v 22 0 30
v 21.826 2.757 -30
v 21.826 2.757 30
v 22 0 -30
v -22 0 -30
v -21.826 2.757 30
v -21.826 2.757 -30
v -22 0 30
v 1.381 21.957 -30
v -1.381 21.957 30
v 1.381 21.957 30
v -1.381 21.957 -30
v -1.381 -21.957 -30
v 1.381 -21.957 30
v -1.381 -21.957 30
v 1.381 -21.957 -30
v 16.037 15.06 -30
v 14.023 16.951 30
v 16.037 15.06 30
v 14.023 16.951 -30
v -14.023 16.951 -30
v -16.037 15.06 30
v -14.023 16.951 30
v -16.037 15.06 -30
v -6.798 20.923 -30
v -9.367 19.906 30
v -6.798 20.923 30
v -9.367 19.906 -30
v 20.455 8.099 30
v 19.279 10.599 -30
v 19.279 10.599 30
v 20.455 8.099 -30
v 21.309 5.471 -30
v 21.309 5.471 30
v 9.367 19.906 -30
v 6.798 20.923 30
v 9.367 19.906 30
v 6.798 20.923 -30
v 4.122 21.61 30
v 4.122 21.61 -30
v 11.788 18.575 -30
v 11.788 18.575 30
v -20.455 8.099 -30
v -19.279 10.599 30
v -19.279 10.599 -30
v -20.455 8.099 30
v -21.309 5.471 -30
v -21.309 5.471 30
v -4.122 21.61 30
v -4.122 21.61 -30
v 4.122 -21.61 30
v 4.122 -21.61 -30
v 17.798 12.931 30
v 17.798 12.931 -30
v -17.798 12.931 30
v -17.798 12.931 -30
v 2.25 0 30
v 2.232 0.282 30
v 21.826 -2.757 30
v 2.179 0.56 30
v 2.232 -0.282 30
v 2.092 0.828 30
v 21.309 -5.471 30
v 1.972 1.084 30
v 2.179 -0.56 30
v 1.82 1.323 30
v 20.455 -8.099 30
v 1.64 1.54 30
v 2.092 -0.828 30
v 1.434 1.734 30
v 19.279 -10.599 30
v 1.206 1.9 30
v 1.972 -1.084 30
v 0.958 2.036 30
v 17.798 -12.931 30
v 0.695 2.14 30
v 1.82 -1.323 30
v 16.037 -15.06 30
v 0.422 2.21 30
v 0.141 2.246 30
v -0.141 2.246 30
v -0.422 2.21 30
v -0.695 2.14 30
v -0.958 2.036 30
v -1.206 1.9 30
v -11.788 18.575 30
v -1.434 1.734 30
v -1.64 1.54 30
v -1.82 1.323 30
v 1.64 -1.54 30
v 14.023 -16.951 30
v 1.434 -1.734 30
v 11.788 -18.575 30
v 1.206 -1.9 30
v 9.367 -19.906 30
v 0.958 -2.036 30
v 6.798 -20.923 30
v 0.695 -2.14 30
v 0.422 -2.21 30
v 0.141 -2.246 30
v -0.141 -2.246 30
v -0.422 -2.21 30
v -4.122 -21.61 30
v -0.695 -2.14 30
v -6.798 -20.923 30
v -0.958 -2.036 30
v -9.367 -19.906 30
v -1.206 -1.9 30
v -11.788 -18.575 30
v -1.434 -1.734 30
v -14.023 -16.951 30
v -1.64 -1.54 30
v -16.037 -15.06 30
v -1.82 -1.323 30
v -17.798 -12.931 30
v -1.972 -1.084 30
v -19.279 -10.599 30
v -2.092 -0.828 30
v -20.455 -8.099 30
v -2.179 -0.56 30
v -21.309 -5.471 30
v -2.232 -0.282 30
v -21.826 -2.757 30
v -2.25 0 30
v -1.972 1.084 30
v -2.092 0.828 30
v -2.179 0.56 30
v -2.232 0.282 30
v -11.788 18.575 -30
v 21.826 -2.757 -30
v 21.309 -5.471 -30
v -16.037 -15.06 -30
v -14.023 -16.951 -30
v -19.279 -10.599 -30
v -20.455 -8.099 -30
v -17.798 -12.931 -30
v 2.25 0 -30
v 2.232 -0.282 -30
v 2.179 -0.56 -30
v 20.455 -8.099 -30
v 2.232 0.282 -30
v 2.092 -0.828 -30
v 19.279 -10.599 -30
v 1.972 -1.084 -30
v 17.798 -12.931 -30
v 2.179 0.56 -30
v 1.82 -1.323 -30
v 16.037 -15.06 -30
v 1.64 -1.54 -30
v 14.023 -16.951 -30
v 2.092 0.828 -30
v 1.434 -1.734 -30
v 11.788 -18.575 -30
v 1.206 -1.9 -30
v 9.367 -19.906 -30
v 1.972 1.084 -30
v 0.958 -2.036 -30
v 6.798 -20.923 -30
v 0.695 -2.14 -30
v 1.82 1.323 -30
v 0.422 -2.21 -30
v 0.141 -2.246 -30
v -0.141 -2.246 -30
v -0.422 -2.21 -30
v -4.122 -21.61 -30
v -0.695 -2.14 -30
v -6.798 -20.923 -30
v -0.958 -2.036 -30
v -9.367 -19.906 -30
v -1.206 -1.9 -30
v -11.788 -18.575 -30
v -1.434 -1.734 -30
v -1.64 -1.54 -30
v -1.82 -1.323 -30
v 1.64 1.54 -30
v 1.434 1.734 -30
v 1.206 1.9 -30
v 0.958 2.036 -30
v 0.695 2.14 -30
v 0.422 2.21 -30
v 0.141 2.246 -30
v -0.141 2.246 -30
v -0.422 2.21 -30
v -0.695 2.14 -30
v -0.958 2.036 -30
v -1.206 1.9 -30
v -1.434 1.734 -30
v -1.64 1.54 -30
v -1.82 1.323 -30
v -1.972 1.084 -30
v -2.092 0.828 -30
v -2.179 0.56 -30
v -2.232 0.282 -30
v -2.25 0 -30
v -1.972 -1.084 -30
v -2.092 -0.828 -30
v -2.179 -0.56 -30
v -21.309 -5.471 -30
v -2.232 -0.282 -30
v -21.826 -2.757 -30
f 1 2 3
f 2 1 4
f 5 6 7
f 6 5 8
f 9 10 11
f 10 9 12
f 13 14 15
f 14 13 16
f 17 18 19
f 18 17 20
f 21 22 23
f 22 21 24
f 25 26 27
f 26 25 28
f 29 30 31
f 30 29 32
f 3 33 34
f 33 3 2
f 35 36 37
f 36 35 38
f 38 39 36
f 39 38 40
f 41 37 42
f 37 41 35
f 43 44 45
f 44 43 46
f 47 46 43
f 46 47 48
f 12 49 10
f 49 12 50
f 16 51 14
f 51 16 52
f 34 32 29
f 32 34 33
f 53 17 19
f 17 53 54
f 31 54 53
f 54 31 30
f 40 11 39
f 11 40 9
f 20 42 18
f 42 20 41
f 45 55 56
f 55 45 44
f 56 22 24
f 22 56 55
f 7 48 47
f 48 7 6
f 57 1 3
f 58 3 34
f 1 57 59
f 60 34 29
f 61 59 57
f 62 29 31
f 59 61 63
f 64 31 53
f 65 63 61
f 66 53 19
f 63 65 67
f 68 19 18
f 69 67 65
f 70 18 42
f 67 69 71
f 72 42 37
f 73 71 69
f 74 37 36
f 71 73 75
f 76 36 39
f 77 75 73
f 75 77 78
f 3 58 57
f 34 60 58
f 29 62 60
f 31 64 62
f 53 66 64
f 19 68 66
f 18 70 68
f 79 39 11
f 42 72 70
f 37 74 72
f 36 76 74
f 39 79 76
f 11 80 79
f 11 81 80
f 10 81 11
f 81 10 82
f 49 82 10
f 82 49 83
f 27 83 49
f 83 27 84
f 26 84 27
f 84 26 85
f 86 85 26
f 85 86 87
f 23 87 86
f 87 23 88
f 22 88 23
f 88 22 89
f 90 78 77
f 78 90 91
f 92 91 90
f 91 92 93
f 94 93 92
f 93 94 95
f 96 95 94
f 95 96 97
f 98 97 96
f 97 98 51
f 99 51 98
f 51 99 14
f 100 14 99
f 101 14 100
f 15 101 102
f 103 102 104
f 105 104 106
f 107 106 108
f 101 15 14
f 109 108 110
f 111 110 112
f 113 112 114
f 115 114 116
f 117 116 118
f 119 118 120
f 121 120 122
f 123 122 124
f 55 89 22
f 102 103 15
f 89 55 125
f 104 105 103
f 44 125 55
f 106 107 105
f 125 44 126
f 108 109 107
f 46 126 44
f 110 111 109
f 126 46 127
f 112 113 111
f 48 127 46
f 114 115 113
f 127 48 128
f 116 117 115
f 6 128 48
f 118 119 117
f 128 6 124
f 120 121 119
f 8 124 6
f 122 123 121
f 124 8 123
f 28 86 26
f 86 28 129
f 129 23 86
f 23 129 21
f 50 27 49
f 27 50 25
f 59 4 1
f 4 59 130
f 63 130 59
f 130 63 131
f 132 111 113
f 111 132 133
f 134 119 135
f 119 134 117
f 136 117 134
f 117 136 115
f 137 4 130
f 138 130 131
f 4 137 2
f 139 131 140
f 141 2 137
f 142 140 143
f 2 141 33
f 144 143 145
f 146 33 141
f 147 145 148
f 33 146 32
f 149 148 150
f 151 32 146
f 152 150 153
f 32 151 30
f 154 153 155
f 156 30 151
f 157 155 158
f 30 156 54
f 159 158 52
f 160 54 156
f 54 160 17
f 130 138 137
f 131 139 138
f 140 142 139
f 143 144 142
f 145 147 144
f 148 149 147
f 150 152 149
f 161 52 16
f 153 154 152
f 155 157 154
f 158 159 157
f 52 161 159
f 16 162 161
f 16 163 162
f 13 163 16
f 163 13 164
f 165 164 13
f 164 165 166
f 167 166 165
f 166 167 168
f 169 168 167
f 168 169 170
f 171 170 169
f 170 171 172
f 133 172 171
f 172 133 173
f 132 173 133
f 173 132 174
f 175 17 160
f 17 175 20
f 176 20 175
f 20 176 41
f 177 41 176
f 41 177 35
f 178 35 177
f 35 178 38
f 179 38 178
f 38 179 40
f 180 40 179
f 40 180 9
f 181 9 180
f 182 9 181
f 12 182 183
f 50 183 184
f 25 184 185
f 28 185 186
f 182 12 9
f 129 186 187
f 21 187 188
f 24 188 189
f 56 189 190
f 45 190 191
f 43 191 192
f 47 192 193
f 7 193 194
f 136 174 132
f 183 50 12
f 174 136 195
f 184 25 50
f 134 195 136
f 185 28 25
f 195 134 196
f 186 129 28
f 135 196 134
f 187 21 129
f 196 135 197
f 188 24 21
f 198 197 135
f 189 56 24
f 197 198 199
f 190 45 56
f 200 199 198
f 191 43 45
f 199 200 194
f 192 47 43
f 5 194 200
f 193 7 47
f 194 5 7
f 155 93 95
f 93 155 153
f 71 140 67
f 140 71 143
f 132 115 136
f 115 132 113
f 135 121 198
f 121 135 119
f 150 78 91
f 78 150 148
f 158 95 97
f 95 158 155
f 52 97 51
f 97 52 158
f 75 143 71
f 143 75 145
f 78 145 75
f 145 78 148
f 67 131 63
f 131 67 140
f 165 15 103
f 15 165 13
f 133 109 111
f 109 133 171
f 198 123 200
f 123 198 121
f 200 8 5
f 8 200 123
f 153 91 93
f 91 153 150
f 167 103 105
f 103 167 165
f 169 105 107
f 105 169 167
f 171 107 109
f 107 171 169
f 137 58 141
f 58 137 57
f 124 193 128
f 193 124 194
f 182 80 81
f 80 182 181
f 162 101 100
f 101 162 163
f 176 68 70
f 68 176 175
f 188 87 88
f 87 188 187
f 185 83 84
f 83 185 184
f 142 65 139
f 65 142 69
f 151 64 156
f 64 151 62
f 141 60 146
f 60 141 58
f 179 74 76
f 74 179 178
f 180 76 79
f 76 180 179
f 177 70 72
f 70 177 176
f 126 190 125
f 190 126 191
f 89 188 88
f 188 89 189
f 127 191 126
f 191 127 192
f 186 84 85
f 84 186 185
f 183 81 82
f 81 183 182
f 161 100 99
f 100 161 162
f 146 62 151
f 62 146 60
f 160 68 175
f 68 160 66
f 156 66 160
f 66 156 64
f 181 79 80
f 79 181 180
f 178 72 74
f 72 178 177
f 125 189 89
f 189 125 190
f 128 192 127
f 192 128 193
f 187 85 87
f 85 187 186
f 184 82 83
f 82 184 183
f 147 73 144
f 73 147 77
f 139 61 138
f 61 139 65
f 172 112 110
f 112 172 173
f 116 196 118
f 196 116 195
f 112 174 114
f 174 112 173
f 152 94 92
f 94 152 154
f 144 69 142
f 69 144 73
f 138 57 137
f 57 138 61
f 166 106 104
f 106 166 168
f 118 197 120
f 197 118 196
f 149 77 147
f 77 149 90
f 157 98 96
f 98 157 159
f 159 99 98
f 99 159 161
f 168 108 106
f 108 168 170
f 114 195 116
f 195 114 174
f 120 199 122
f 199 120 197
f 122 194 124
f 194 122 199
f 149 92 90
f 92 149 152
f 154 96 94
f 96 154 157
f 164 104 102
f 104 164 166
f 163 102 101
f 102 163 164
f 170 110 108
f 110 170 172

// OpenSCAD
$fn = 50;


difference() {
	union() {
		translate(v = [0, 0, -30.0000000000]) {
			cylinder(h = 60, r = 22.0000000000);
		}
	}
	union() {
		translate(v = [0, 0, -100.0000000000]) {
			cylinder(h = 200, r = 2.2500000000);
		}
	}
}
